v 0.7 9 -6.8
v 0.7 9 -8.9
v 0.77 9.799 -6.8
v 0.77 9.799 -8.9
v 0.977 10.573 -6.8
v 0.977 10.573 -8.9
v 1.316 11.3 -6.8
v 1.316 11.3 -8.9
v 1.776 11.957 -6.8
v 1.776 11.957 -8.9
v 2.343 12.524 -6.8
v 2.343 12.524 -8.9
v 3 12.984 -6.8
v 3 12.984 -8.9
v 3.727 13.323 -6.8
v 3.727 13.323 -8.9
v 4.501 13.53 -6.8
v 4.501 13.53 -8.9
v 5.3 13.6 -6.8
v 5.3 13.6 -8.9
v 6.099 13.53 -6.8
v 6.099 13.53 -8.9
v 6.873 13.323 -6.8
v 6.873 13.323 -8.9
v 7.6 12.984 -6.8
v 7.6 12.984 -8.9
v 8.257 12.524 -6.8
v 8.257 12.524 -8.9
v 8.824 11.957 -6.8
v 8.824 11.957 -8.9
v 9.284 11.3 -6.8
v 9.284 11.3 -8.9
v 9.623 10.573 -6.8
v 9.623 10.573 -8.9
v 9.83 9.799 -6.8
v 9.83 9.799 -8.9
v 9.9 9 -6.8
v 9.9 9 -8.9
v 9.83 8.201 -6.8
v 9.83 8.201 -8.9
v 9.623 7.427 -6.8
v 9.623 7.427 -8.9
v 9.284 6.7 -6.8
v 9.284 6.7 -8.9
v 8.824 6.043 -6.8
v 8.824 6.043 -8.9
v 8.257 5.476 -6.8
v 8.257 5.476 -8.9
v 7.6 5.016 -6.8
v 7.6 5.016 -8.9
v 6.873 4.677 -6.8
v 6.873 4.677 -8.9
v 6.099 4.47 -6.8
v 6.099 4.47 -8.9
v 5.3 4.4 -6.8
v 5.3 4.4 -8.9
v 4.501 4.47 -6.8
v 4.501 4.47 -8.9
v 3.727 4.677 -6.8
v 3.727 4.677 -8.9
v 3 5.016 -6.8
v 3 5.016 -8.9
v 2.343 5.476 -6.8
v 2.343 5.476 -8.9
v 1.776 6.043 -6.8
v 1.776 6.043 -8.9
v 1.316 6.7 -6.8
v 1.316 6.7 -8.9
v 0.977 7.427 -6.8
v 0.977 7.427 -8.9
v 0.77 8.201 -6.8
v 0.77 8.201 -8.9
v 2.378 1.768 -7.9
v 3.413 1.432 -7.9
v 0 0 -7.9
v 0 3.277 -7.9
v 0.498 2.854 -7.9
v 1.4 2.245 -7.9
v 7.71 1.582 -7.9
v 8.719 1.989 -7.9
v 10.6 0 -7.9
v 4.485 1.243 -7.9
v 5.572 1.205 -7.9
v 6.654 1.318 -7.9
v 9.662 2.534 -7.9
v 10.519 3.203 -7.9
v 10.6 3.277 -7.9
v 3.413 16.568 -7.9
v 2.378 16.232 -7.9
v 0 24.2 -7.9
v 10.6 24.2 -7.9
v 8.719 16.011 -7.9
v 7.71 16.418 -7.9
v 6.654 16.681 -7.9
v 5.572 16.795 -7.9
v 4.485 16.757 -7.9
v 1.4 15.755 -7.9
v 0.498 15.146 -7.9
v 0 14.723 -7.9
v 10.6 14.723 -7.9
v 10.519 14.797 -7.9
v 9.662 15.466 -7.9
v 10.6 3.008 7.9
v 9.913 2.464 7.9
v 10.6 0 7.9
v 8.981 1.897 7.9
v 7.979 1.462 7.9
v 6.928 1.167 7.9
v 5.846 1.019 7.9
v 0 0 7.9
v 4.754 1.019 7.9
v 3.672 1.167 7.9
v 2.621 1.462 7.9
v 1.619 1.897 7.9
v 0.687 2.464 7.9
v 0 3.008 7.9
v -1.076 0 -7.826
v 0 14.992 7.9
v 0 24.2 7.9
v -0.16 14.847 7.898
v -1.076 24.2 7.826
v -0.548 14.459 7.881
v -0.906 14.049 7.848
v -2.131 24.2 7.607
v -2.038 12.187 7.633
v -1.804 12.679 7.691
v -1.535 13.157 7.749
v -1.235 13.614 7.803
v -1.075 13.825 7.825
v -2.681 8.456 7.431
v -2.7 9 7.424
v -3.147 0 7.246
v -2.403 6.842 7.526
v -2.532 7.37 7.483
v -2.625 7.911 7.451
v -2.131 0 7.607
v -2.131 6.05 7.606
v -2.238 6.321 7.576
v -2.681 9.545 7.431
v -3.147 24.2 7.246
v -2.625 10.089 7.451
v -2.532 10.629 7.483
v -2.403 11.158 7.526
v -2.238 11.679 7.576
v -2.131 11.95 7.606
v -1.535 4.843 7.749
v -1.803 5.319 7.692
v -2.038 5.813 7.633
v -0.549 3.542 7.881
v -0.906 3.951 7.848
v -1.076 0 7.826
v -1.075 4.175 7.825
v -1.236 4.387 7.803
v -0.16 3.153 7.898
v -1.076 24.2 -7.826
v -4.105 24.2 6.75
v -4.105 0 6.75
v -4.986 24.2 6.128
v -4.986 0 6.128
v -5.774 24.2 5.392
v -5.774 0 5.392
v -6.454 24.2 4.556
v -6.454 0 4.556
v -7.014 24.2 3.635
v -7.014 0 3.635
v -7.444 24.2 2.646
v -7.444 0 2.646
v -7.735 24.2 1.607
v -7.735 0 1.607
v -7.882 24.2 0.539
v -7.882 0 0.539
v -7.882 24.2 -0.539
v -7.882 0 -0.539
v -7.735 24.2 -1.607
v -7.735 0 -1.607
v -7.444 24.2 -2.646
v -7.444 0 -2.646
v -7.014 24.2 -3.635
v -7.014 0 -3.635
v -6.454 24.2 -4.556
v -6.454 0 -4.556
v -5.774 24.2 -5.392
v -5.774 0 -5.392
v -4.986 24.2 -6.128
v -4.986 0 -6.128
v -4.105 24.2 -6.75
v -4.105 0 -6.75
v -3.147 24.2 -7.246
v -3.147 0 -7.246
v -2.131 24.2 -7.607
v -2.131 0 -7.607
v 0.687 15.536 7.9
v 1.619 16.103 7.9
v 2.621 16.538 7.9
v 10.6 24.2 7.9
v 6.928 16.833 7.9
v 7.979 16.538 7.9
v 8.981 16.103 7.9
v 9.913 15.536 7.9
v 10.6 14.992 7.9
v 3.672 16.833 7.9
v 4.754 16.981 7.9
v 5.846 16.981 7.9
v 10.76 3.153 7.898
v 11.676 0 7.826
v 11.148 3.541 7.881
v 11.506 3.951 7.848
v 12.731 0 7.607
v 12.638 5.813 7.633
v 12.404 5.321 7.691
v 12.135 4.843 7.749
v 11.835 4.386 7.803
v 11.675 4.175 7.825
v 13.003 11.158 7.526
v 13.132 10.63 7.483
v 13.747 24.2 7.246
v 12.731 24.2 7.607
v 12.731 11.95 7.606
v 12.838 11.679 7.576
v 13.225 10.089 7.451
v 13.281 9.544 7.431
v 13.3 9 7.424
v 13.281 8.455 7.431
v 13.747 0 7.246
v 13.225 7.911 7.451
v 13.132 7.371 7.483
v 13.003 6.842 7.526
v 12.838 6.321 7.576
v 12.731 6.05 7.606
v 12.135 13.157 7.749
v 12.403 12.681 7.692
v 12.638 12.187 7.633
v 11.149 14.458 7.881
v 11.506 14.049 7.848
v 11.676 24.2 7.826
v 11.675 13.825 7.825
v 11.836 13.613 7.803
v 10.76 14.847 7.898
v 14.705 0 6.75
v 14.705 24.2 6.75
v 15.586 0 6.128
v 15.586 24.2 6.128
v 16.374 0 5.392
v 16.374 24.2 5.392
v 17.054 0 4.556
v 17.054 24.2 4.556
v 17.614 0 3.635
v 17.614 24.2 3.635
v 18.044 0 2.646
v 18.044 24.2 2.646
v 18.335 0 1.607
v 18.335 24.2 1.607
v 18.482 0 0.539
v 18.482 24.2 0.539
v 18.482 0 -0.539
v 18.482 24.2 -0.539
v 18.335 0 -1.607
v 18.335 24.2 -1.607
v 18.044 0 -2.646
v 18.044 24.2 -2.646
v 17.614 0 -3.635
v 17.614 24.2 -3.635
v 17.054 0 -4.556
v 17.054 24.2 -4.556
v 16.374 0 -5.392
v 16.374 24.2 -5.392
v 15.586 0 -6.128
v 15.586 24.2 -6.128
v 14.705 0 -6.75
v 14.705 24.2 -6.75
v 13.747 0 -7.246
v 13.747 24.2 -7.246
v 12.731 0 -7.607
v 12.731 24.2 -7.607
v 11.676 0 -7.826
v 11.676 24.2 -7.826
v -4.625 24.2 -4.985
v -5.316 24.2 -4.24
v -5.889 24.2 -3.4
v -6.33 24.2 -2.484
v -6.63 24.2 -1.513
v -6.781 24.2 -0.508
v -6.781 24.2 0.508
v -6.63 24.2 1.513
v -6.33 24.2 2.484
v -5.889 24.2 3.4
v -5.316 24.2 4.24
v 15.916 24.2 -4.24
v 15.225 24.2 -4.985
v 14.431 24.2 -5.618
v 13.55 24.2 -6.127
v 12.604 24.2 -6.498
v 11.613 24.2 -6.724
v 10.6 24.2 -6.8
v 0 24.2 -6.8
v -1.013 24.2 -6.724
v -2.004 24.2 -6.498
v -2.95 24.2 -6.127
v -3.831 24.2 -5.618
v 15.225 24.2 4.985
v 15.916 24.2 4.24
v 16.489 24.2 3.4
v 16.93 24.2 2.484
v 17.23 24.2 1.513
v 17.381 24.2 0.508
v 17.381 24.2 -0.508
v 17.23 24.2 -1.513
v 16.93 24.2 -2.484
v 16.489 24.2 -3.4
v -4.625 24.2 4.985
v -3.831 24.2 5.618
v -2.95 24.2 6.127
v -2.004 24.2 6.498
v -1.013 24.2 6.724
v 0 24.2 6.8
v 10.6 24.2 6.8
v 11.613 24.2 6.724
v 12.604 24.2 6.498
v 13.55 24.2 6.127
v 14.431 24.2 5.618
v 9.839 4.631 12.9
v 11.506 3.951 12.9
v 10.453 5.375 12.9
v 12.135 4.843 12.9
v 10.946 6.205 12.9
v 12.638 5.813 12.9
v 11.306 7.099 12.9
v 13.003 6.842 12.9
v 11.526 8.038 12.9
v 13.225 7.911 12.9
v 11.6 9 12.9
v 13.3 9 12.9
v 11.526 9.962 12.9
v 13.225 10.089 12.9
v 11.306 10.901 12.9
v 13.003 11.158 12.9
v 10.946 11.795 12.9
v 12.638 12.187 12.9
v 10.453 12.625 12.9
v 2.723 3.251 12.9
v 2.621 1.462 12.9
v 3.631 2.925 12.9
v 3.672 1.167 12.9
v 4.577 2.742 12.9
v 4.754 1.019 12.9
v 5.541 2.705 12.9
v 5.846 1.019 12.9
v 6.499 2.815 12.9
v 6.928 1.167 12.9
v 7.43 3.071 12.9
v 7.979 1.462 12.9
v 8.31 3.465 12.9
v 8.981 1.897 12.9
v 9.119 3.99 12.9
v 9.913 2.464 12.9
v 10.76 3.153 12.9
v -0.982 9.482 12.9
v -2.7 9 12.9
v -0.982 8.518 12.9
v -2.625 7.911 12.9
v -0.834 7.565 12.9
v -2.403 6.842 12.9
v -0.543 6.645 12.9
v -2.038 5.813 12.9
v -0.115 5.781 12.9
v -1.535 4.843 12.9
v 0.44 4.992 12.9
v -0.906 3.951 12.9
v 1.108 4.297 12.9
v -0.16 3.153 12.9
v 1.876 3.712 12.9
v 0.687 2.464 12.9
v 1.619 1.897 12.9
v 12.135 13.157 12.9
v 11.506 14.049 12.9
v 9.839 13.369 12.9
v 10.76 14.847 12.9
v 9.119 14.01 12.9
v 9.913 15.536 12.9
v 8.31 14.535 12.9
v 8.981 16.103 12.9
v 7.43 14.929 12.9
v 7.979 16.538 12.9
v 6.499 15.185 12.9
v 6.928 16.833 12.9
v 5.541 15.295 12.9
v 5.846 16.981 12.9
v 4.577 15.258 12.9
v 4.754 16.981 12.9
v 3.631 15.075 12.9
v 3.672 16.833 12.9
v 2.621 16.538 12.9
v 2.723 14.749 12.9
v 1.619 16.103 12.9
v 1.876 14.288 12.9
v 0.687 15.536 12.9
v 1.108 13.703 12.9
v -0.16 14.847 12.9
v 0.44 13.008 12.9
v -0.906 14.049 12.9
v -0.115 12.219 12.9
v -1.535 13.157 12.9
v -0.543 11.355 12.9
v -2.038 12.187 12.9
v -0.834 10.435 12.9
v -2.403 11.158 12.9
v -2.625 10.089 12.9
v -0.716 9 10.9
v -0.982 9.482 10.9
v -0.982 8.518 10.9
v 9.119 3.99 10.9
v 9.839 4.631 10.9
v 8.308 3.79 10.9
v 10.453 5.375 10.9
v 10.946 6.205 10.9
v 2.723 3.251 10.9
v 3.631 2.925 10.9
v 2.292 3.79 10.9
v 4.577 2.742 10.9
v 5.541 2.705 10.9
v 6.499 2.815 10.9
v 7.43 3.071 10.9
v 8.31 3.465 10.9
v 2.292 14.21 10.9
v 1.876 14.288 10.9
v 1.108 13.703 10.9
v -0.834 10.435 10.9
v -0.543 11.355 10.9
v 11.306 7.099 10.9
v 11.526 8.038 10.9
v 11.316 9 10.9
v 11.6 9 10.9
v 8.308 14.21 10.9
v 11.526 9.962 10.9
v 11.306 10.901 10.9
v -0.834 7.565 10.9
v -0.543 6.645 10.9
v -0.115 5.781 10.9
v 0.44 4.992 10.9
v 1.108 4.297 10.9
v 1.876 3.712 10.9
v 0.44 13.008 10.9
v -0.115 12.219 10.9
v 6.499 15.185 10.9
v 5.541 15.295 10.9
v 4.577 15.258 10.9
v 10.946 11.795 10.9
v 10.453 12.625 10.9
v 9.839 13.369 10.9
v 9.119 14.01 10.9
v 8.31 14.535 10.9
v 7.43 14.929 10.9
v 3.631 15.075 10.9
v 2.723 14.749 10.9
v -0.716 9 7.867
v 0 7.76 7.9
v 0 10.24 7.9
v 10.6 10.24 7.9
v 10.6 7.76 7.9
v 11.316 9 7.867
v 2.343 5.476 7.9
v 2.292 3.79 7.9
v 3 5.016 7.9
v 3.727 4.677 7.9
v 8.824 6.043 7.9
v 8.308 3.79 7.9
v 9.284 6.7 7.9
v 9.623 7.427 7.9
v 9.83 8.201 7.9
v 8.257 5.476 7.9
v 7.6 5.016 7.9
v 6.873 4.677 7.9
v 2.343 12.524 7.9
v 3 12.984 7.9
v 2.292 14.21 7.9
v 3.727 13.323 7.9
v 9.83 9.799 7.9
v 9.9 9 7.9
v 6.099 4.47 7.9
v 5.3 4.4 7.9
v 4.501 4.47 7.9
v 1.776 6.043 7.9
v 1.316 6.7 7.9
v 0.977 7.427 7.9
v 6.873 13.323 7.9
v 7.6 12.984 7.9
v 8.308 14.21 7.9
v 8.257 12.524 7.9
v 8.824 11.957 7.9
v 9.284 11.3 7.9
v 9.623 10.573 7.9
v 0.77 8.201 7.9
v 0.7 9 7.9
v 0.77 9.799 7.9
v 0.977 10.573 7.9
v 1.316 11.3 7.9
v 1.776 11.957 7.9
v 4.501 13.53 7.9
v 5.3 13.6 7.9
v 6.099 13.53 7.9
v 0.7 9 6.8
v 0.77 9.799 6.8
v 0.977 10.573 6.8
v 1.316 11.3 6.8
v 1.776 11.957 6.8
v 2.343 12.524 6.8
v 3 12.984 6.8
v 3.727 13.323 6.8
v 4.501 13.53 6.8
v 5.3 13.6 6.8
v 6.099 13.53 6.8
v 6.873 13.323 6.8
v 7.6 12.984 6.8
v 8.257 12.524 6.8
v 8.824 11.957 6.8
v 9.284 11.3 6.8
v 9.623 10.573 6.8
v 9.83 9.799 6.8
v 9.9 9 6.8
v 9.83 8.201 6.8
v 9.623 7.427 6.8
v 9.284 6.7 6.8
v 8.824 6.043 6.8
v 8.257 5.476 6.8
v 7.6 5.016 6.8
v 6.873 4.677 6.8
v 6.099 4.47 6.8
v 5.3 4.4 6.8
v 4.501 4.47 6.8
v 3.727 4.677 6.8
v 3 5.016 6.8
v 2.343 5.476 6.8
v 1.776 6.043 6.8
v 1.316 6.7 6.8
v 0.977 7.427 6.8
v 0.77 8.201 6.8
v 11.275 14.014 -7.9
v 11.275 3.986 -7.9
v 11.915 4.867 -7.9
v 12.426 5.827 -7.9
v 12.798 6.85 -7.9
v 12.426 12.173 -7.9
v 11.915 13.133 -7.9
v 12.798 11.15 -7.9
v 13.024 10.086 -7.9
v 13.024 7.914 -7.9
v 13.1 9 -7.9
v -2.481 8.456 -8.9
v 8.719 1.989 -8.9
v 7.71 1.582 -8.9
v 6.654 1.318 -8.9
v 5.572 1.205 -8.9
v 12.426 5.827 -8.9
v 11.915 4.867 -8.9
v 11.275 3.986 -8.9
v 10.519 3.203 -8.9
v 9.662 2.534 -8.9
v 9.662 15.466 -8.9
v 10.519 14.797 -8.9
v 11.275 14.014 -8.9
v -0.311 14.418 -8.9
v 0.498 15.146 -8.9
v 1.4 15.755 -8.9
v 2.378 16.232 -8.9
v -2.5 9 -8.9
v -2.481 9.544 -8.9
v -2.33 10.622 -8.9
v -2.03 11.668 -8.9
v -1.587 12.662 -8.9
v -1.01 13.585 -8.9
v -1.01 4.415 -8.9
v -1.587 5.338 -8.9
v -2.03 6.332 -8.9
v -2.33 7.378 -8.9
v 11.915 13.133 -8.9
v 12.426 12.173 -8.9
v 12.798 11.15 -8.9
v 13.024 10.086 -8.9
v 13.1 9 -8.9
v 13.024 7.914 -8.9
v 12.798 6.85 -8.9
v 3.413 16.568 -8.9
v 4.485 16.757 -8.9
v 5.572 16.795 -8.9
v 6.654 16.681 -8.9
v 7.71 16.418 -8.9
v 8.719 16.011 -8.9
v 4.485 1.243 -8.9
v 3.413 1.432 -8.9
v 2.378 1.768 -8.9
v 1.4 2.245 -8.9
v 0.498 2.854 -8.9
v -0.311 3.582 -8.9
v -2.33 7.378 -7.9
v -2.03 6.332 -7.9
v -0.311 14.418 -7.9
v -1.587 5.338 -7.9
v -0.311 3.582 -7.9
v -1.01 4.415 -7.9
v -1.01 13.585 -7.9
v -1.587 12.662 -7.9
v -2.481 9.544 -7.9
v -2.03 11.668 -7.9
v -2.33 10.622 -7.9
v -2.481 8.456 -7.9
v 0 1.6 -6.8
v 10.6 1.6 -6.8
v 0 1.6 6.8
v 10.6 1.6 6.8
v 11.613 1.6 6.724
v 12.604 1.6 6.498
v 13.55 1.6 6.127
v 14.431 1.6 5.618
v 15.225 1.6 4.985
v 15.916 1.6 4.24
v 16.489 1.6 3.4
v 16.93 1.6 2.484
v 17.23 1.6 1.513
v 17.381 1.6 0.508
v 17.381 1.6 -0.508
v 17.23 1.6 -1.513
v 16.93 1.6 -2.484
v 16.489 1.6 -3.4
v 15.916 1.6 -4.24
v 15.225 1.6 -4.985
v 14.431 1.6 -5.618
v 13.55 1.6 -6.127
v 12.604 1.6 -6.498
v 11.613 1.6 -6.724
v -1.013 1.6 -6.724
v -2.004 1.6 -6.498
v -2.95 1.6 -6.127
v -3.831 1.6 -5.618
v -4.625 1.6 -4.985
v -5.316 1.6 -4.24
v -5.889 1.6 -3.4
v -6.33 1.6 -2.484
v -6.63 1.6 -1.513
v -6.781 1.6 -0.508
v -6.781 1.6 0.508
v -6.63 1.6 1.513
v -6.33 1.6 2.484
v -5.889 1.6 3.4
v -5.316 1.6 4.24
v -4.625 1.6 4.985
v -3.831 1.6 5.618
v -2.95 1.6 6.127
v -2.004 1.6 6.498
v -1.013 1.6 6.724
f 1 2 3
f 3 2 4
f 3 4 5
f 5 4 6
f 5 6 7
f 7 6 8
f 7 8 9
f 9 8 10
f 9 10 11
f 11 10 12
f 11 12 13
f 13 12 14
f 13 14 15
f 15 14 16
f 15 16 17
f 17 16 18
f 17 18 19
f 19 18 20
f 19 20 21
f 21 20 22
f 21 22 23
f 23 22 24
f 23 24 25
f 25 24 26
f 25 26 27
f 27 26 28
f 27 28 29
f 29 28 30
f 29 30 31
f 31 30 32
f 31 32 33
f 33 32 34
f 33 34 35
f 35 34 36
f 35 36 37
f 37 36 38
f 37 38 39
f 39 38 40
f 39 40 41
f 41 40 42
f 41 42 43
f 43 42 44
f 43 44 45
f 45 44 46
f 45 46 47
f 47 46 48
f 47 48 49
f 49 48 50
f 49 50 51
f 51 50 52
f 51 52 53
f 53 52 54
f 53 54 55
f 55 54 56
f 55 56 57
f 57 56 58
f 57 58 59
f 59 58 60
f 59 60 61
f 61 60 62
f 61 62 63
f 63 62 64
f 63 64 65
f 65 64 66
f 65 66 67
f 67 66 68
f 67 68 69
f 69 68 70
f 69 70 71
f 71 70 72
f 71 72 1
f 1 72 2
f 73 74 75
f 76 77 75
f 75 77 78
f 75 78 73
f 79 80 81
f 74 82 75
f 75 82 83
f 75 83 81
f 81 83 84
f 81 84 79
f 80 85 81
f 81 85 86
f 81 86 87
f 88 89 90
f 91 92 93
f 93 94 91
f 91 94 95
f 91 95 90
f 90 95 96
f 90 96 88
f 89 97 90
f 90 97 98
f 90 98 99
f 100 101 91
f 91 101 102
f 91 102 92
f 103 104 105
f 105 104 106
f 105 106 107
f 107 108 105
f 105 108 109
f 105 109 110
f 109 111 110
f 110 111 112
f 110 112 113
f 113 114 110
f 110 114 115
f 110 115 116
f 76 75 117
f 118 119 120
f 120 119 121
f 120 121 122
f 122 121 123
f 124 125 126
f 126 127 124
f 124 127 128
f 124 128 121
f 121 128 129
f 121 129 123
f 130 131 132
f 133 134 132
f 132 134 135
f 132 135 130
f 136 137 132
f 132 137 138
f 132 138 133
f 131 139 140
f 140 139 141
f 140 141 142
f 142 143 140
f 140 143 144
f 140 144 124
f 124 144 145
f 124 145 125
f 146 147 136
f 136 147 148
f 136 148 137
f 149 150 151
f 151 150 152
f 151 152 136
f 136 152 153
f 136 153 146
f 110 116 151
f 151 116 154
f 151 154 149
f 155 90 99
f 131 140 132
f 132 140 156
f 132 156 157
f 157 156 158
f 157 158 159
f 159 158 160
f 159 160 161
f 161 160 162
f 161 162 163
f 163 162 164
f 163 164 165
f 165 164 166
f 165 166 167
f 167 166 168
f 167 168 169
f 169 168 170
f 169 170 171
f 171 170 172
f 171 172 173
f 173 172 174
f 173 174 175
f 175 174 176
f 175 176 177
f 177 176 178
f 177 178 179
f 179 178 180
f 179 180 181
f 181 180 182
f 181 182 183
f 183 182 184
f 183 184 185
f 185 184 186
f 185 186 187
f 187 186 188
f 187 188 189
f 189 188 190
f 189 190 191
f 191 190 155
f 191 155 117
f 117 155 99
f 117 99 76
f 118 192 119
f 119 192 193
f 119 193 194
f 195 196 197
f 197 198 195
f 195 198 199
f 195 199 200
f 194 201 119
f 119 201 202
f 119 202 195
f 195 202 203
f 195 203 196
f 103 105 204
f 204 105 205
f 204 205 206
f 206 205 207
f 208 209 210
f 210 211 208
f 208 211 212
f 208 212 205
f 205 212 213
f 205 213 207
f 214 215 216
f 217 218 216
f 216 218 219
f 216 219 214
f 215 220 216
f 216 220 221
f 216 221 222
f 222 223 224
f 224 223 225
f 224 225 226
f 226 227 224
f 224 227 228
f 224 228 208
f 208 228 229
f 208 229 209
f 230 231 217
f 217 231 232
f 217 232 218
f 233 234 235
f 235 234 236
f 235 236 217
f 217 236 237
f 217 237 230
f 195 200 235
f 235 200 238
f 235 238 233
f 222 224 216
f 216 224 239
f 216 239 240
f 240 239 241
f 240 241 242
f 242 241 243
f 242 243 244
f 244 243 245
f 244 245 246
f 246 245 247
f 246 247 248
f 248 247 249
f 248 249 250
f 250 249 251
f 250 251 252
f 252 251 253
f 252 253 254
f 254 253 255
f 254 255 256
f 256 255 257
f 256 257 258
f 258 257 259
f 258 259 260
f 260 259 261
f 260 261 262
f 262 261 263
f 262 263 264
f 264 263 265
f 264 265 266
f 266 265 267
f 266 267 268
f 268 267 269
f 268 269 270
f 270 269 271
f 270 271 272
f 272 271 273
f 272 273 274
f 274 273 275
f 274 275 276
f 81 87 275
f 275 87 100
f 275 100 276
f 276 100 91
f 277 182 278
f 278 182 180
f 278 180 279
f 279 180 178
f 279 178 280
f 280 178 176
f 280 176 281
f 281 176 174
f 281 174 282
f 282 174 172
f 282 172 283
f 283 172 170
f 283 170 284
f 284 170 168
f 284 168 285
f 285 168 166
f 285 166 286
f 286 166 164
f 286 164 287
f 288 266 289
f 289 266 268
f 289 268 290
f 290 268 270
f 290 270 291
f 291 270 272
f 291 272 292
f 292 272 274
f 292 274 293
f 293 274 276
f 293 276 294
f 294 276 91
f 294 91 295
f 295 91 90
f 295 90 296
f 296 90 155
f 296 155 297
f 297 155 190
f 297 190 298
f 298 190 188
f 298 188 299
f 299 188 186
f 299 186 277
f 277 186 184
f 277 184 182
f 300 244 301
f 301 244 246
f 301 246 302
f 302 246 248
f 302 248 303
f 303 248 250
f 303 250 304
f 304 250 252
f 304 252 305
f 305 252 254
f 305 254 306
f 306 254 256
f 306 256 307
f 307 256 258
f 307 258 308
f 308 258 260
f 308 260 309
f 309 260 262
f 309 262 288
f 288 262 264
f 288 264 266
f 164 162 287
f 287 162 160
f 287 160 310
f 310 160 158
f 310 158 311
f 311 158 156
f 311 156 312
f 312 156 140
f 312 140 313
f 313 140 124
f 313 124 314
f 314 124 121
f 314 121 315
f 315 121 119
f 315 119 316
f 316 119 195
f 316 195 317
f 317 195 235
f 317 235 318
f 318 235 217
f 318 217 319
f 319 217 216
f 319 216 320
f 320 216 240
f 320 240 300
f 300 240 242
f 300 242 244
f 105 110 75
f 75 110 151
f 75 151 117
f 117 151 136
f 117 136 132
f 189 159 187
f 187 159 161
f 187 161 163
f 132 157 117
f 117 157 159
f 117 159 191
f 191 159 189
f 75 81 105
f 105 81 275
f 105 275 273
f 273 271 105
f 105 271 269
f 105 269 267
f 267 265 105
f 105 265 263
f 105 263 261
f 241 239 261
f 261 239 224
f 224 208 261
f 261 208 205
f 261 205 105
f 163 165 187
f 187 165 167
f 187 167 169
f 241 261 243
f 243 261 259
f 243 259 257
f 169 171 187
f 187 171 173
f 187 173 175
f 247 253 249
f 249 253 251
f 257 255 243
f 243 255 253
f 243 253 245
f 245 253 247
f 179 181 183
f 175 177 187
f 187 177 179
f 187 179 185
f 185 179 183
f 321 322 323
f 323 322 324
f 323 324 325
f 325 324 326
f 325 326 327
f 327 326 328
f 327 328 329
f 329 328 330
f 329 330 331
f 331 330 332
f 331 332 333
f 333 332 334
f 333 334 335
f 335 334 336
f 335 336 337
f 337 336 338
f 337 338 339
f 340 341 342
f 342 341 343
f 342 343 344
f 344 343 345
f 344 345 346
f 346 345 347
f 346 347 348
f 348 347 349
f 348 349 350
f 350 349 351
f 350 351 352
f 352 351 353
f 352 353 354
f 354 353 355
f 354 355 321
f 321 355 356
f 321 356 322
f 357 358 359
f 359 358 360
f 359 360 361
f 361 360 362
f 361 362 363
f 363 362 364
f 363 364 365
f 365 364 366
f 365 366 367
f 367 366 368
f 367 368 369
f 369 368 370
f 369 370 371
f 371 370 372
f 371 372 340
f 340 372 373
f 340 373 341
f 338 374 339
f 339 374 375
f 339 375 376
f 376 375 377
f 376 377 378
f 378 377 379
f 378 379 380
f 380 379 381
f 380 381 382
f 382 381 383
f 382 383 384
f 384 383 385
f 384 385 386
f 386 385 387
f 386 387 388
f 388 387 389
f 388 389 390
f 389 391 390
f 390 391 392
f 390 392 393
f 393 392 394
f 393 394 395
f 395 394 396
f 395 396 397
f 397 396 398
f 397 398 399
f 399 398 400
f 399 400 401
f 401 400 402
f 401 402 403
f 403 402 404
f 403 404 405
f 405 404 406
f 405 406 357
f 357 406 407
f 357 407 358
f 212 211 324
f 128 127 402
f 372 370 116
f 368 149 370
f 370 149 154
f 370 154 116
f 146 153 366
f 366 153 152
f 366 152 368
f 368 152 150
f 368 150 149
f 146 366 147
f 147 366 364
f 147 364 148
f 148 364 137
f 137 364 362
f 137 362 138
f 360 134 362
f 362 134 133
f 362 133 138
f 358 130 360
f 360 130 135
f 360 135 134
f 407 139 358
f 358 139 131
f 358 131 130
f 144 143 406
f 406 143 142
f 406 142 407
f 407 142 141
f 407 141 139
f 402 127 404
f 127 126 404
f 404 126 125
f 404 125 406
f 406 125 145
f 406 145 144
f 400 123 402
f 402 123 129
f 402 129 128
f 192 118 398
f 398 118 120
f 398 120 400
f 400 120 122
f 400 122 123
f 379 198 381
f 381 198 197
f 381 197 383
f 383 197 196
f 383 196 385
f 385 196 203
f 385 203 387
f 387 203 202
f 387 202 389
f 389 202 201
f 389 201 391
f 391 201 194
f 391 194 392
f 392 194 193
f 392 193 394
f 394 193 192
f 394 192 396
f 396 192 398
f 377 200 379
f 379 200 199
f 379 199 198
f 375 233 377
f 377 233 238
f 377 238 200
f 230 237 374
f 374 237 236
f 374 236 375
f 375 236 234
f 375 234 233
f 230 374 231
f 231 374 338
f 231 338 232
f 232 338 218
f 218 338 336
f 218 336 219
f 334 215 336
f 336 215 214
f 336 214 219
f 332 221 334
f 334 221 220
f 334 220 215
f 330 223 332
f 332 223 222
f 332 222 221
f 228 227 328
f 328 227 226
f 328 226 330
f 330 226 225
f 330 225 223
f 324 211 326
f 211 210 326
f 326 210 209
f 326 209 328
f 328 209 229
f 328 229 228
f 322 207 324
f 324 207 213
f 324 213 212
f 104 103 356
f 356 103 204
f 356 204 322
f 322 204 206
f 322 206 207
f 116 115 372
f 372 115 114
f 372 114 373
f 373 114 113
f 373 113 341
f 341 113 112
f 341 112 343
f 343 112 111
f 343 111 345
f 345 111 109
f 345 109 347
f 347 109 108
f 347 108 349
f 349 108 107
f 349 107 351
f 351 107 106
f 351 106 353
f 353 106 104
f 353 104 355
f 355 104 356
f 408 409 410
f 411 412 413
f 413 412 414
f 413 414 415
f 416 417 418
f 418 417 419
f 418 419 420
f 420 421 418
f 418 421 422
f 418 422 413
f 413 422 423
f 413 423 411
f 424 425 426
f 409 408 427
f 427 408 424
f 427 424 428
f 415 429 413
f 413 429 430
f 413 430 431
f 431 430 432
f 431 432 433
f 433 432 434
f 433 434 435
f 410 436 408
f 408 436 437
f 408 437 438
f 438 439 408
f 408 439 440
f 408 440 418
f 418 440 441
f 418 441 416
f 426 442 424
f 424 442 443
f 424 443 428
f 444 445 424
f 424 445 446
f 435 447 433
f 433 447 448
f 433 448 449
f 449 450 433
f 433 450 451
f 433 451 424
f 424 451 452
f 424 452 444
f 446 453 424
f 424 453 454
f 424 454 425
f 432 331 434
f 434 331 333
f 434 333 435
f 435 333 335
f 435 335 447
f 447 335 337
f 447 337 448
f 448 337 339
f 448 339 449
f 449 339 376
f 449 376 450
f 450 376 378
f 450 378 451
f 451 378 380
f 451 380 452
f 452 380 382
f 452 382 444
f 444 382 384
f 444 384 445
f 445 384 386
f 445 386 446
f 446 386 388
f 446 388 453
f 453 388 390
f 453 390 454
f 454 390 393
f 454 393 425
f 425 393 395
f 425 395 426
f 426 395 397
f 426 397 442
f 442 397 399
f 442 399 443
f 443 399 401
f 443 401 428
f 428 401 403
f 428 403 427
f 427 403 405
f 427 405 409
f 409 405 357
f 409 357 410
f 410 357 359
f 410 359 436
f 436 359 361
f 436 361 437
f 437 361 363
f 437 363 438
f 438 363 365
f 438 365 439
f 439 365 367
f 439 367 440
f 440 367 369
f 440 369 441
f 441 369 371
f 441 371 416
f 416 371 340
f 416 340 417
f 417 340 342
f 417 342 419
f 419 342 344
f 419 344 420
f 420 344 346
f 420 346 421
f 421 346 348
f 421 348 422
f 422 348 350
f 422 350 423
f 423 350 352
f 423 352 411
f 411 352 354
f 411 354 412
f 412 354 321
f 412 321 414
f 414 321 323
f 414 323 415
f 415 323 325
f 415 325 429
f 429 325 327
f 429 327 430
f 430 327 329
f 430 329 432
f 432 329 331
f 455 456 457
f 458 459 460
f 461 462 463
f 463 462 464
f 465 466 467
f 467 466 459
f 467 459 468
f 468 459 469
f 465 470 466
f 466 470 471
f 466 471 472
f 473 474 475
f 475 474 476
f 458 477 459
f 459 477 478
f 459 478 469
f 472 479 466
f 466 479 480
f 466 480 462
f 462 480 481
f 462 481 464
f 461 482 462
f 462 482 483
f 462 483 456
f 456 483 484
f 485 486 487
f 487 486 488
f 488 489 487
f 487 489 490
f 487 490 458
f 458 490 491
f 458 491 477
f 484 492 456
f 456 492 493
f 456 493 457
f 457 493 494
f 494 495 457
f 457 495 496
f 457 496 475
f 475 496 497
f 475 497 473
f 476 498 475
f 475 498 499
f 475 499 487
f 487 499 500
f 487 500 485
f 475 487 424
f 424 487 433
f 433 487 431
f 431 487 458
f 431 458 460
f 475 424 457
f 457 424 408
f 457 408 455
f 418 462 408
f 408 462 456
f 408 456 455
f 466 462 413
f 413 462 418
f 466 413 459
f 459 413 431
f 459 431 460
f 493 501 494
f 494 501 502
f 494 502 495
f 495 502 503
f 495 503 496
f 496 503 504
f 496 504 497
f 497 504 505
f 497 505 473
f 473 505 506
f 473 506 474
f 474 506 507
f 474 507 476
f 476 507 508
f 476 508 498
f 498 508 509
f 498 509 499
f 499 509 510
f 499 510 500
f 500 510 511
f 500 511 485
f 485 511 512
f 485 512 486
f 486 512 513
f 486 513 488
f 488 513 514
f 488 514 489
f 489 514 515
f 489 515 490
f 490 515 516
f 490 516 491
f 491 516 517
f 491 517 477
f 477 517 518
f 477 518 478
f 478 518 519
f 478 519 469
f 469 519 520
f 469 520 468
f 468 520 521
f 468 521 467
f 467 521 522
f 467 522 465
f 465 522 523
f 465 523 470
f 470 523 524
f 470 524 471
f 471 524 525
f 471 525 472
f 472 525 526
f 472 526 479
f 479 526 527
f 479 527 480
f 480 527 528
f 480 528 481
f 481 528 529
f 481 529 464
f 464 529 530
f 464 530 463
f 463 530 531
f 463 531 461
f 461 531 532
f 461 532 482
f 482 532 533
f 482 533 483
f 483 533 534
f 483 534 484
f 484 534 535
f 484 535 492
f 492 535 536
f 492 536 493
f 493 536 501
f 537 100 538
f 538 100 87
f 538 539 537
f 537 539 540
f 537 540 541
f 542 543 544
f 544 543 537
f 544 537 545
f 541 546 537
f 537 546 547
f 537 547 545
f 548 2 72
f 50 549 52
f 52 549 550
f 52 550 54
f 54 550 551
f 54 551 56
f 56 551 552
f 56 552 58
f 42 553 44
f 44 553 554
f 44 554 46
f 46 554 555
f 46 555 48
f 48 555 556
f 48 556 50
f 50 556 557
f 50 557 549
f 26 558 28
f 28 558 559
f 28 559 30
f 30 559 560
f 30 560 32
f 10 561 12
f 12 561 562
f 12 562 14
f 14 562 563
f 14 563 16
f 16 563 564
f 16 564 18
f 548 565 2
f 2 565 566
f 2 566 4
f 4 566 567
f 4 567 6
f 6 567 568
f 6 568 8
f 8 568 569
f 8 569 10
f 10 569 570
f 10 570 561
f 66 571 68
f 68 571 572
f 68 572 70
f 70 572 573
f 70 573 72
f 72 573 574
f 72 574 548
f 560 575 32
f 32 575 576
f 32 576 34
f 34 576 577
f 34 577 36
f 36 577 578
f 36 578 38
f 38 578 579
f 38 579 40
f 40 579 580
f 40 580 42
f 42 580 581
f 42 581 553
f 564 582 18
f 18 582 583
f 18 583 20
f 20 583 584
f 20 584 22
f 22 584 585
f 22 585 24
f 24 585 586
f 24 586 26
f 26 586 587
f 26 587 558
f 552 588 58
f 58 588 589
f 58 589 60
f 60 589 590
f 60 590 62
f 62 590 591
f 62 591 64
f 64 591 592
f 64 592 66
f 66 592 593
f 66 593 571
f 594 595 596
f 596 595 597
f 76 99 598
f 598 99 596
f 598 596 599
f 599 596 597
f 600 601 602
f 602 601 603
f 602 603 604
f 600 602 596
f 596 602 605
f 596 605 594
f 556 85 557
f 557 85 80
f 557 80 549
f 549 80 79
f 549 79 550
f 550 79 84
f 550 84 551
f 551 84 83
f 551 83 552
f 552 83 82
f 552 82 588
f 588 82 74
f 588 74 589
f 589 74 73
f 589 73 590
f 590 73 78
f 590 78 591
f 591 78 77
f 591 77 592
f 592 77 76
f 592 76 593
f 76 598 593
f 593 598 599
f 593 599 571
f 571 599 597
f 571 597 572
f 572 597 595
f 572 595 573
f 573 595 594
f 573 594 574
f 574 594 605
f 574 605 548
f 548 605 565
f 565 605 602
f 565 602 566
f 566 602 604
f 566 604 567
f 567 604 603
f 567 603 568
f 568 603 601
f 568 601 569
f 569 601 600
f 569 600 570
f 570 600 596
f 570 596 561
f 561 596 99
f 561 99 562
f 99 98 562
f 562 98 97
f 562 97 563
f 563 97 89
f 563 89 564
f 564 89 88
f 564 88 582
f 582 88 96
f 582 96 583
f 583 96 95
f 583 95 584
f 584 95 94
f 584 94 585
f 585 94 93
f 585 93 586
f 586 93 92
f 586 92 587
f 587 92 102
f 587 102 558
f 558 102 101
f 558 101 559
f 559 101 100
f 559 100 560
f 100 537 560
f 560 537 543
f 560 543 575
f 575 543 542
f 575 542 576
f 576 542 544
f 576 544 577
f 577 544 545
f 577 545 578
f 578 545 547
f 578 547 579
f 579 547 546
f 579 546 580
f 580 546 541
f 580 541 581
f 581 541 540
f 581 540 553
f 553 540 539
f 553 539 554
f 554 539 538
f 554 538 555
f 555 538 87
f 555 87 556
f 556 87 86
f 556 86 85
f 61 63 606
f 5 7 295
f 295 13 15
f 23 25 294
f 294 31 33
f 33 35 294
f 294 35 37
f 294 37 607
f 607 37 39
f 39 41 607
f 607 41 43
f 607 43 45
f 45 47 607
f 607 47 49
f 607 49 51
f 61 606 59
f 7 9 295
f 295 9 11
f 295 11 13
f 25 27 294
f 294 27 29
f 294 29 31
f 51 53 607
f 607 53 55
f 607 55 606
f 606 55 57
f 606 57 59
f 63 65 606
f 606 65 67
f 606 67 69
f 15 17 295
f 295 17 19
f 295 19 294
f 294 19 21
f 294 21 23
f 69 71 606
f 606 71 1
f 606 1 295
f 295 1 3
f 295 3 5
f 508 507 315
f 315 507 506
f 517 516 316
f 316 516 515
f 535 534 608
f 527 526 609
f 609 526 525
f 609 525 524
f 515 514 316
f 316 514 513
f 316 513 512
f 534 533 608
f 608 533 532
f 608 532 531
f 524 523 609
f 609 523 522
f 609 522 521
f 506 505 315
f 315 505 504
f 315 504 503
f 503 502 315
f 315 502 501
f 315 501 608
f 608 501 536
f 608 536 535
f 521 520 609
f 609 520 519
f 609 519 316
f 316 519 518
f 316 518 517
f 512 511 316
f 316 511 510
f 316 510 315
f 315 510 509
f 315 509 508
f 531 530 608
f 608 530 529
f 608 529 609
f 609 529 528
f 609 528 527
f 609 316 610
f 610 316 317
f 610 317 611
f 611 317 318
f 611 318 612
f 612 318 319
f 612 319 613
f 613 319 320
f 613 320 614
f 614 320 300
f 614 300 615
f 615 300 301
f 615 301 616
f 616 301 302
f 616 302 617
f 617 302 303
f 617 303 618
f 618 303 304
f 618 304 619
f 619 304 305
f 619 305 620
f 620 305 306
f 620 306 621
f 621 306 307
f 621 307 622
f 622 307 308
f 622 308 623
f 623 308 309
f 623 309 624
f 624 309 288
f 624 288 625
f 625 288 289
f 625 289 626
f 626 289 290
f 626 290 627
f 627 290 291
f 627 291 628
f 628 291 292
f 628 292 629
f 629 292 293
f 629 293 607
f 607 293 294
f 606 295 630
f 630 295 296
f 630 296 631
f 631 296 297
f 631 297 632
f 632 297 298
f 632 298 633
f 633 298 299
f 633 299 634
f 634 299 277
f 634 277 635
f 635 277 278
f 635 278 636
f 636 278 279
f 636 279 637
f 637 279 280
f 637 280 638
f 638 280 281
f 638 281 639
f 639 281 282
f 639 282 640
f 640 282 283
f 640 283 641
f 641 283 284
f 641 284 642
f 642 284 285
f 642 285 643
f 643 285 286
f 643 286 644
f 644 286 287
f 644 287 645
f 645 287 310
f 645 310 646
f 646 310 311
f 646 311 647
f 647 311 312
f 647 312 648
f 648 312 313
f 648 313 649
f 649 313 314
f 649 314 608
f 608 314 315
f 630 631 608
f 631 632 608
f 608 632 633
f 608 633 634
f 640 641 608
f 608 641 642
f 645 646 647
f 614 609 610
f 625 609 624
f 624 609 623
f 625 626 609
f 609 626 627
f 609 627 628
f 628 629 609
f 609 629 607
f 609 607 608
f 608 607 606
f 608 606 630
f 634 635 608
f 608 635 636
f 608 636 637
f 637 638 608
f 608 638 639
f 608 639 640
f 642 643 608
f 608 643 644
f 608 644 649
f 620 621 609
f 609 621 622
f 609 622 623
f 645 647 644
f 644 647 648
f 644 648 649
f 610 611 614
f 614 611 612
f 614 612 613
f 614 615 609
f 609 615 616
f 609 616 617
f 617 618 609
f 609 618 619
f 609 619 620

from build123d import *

# Parameters (mm, degrees)
EXTRUDE_1_DEPTH     = 24.2
EXTRUDE_2_REACH     = 38.885
SKETCH_2_R          = 8
SKETCH_7_R          = 6.3
CUT_EXTRUDE_5_DEPTH = 2
SKETCH_8_R          = 4.6
CUT_EXTRUDE_6_DEPTH = 37.885363123
EXTRUDE_START       = 1
SKETCH_8_3_R        = 7.8
SKETCH_8_3_R_2      = 4.6
EXTRUDE_3_DEPTH     = 1
CUT_EXTRUDE_7_DEPTH = 22.6


with BuildPart() as part:
    # 草圖1 → 填料-伸長1 (new body)
    with BuildSketch(Plane(origin=(0, 0, 0), x_dir=(1, 0, 0), z_dir=(0, 1, 0))):
        with BuildLine():
            Line((0, 7.9), (10.6, 7.9))
            ThreePointArc((10.6, 7.9), (18.5, 0), (10.6, -7.9))
            Line((10.6, -7.9), (0, -7.9))
            ThreePointArc((0, -7.9), (-7.9, 0), (0, 7.9))
        make_face()
    extrude(amount=EXTRUDE_1_DEPTH)

    # 草圖2 → 填料-伸長2 (add, up to next)
    with BuildSketch(Plane.XY.offset(12.9), mode=Mode.PRIVATE) as extrude_2_sk1:
        with Locations((5.3, 9)):
            Circle(SKETCH_2_R)
        Polygon((8.307994902, 14.21), (2.292005098, 14.21), (-0.715989805, 9), (2.292005098, 3.79), (8.307994902, 3.79), (11.315989805, 9), align=None, mode=Mode.SUBTRACT)
    extrude_2_tool1 = extrude(extrude_2_sk1.sketch, amount=-EXTRUDE_2_REACH, mode=Mode.PRIVATE) - part.part
    add(extrude_2_tool1.solids().sort_by_distance((-2.473726, 9, 12.9))[0])

    # 草圖7 → 除料-伸長5 (cut)
    with BuildSketch(Plane.XY.offset(12.9)):
        with Locations((5.3, 9)):
            Circle(SKETCH_7_R)
    extrude(amount=-CUT_EXTRUDE_5_DEPTH, mode=Mode.SUBTRACT)

    # 草圖8 → 除料-伸長6 (cut, through all)
    with BuildSketch(Plane(origin=(0, 0, -7.9), x_dir=(-1, 0, 0), z_dir=(0, 0, -1))):
        with Locations((-5.3, 9)):
            Circle(SKETCH_8_R)
    extrude(amount=-CUT_EXTRUDE_6_DEPTH, mode=Mode.SUBTRACT)

    # 草圖8<3> → 填料-伸長3 (add)
    with BuildSketch(Plane(origin=(0, 0, -7.9), x_dir=(-1, 0, 0), z_dir=(0, 0, -1)).offset(EXTRUDE_START)):
        with Locations((-5.3, 9)):
            Circle(SKETCH_8_3_R)
        with Locations((-5.3, 9)):
            Circle(SKETCH_8_3_R_2, mode=Mode.SUBTRACT)
    extrude(amount=-EXTRUDE_3_DEPTH)

    # 草圖9 → 除料-伸長7 (cut)
    with BuildSketch(Plane(origin=(0, 24.2, 0), x_dir=(1, 0, 0), z_dir=(0, 1, 0))):
        with BuildLine():
            ThreePointArc((10.6, -6.8), (17.4, 0), (10.6, 6.8))
            Line((10.6, 6.8), (0, 6.8))
            ThreePointArc((0, 6.8), (-6.8, 0), (0, -6.8))
            Line((0, -6.8), (10.6, -6.8))
        make_face()
    extrude(amount=-CUT_EXTRUDE_7_DEPTH, mode=Mode.SUBTRACT)


solid = part.part
